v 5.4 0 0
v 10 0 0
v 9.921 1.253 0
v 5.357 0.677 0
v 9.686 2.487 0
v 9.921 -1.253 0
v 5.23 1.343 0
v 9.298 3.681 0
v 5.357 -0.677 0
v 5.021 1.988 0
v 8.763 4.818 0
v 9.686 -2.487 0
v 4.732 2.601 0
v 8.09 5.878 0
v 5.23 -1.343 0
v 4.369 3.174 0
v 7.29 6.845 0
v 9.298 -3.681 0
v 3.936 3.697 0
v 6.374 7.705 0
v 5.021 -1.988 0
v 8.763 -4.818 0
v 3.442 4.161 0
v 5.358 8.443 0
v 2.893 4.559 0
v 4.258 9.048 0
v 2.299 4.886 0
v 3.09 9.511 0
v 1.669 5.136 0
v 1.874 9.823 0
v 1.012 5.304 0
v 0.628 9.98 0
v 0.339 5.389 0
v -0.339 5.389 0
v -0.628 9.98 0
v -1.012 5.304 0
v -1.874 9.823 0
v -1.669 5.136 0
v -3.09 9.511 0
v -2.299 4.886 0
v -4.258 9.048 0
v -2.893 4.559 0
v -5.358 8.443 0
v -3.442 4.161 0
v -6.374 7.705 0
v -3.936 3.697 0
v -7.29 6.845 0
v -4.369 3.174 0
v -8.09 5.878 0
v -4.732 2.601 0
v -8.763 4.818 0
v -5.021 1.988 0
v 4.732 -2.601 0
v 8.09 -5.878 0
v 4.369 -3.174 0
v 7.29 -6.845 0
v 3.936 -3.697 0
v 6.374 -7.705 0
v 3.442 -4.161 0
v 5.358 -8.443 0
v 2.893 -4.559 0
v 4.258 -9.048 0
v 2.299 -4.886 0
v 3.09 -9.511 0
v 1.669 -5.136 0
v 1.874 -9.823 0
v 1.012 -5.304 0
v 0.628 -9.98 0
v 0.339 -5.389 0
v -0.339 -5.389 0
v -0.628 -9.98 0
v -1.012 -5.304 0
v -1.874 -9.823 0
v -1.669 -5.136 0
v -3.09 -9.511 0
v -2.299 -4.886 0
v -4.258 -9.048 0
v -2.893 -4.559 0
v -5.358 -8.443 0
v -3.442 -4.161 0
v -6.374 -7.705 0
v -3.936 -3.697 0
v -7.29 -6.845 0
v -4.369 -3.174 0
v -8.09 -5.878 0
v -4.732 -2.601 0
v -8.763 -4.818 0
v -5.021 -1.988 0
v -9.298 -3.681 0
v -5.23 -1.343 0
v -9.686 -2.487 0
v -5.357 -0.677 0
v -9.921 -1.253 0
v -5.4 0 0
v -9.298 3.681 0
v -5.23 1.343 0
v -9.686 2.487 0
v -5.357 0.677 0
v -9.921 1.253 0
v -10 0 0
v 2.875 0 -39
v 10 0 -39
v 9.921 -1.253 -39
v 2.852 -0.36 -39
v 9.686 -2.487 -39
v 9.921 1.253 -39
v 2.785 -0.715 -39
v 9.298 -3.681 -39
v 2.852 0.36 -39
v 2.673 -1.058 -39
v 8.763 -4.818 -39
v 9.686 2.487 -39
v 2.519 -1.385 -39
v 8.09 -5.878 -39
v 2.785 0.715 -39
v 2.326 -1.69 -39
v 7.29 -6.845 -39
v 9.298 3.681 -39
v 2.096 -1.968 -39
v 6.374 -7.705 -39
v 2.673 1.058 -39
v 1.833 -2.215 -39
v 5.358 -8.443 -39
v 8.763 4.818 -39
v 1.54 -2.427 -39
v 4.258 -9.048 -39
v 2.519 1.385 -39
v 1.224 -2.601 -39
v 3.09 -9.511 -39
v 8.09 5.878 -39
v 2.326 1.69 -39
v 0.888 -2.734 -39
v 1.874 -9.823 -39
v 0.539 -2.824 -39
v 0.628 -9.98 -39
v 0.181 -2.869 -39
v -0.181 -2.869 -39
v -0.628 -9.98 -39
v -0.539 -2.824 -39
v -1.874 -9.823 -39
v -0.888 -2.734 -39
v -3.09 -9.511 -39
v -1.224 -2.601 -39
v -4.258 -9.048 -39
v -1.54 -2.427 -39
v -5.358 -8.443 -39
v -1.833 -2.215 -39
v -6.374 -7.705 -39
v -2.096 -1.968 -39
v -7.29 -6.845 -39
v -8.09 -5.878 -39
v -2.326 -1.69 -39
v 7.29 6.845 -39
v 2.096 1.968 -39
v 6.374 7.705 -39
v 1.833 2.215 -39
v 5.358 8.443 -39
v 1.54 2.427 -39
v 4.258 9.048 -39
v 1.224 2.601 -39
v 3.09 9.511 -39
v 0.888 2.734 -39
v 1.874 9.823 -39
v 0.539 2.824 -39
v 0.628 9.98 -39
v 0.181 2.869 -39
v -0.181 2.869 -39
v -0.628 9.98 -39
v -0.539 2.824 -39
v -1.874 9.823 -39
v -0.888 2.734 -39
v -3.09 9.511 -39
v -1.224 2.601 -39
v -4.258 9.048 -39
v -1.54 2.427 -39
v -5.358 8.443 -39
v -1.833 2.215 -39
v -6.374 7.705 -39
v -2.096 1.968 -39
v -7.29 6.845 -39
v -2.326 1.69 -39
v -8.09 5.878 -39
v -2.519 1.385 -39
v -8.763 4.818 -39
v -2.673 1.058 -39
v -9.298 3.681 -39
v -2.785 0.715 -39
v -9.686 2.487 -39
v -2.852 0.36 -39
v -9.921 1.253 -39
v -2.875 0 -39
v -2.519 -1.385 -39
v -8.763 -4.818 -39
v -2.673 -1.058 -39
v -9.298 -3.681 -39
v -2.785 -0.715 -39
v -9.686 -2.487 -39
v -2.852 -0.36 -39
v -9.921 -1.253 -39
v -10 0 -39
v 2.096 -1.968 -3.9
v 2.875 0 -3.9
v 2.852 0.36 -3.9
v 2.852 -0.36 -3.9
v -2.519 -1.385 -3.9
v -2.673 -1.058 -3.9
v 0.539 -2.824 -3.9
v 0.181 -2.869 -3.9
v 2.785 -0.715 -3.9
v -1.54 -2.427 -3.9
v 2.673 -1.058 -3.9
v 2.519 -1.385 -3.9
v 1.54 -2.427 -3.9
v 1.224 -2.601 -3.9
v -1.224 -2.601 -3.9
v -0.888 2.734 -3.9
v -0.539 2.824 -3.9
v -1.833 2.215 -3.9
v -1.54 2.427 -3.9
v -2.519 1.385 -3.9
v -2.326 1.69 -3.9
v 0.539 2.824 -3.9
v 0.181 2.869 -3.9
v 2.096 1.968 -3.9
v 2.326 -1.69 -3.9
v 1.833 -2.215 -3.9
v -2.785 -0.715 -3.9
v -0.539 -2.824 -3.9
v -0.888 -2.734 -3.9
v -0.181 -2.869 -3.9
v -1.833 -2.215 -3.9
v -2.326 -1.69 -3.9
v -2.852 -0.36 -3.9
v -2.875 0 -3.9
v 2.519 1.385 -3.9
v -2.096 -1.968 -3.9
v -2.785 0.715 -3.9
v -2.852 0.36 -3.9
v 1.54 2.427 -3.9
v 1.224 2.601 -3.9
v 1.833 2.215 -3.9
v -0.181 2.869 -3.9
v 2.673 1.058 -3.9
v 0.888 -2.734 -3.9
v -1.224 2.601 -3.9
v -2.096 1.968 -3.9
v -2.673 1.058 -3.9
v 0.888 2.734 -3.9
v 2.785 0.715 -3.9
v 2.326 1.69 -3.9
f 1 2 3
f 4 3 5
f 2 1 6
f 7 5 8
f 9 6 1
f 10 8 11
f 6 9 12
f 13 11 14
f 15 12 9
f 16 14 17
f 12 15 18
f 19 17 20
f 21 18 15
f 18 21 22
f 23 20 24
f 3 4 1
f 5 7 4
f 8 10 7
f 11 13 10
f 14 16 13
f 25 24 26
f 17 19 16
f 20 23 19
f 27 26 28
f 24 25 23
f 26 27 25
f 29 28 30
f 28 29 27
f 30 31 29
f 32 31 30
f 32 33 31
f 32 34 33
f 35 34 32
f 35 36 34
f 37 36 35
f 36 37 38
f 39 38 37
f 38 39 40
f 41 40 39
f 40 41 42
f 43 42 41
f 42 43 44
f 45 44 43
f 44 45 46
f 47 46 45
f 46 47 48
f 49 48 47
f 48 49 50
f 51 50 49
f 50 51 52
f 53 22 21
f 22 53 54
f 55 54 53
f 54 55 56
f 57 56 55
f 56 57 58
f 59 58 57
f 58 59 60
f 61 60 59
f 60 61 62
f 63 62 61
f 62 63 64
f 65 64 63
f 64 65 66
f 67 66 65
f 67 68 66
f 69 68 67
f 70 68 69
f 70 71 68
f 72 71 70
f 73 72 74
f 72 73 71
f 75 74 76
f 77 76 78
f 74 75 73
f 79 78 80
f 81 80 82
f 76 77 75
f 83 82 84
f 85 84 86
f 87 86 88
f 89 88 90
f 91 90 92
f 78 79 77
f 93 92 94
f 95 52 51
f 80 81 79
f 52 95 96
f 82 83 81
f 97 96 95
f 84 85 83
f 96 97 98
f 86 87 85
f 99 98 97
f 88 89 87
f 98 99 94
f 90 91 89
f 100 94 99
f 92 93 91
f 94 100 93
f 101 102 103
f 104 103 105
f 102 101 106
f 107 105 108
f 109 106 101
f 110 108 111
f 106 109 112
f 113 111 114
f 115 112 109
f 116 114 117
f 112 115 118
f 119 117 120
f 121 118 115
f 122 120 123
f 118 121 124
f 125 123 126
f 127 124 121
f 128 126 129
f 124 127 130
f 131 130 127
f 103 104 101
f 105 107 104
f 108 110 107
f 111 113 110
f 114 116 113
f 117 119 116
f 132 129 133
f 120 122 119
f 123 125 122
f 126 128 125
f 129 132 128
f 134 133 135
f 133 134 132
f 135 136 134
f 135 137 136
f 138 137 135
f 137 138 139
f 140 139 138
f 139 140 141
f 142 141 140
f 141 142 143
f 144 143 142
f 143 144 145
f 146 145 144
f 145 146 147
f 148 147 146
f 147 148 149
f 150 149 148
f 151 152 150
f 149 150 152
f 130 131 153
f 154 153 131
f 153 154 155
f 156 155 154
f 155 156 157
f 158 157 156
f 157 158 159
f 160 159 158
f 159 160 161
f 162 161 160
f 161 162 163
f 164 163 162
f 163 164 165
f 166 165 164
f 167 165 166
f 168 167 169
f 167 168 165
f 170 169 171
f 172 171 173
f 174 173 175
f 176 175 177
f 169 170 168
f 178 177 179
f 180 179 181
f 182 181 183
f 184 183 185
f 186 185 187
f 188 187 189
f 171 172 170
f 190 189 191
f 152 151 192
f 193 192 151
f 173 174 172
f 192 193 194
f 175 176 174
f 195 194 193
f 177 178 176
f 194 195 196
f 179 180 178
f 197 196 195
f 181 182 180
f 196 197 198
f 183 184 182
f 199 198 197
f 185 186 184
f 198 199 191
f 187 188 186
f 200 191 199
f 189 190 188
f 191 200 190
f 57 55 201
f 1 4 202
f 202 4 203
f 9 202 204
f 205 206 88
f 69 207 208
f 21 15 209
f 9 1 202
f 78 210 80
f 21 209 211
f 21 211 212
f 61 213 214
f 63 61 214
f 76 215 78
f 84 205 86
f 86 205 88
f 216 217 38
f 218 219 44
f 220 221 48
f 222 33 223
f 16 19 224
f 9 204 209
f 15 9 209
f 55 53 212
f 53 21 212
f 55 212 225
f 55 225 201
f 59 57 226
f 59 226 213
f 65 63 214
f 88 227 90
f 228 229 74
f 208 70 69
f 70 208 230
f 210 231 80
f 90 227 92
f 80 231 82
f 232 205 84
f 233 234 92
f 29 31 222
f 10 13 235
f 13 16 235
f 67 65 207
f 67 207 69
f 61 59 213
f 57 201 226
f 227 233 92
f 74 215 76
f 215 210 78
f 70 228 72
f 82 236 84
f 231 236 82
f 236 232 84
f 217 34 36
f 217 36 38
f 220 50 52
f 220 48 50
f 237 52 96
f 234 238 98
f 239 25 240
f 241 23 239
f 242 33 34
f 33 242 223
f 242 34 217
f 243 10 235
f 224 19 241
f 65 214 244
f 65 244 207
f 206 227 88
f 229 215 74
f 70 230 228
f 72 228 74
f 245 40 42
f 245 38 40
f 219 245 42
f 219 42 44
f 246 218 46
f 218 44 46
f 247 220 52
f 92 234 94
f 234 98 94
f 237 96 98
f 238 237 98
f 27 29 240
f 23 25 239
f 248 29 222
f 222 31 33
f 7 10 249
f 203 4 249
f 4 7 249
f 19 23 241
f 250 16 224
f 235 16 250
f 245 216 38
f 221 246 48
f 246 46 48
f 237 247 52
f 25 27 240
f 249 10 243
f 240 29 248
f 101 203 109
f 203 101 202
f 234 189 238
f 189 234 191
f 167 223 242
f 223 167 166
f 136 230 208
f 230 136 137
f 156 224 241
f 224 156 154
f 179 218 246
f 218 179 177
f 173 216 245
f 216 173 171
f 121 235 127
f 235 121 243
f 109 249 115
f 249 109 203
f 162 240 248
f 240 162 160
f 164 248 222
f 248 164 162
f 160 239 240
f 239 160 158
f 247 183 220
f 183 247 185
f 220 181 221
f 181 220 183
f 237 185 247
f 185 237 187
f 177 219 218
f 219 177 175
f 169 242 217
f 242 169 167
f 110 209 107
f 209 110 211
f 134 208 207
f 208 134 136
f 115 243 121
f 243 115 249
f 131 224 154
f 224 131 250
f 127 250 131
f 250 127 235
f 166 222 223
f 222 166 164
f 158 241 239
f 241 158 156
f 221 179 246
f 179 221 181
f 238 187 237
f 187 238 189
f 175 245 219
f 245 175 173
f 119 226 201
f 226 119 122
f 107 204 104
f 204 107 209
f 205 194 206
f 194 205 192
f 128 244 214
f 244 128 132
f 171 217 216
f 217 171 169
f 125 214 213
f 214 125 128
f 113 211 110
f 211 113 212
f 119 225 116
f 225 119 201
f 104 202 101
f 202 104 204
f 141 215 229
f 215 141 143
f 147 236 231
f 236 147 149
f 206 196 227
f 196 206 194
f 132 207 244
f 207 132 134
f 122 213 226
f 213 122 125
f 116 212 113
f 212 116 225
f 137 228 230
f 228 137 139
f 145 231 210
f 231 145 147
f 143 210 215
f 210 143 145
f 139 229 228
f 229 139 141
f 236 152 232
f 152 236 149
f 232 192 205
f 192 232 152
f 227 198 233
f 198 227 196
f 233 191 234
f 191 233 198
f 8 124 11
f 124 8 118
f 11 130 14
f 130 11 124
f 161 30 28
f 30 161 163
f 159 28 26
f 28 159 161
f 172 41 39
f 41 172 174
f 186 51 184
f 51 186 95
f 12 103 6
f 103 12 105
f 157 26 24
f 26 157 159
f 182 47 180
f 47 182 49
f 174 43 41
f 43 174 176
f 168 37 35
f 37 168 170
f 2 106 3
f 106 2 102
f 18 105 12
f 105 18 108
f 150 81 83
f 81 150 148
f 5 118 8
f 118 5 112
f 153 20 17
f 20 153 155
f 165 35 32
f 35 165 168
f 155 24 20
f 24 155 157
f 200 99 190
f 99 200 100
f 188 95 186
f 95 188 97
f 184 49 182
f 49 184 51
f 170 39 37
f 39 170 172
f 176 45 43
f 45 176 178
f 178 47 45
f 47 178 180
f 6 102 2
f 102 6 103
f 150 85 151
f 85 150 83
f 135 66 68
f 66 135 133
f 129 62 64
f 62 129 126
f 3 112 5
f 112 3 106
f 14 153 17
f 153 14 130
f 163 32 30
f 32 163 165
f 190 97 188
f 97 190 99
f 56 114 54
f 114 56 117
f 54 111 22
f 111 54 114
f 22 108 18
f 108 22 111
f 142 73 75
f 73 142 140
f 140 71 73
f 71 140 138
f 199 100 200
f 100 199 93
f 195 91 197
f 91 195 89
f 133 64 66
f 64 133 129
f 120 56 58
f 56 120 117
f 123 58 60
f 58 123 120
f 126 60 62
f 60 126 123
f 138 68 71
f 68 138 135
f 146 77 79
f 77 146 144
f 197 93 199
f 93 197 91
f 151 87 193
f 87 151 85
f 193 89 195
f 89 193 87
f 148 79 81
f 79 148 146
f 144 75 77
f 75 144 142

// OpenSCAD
$fn = 50;


difference() {
	union() {
		translate(v = [0, 0, -39.0000000000]) {
			cylinder(h = 39, r = 10.0000000000);
		}
		cylinder(h = 0, r = 19.0000000000);
	}
	union() {
		translate(v = [0, 0, 0]) {
			rotate(a = [0, 0, 0]) {
				difference() {
					union() {
						#translate(v = [0, 0, -39.0000000000]) {
							cylinder(h = 39, r = 2.6000000000);
						}
						#translate(v = [0, 0, -3.9000000000]) {
							cylinder(h = 3.9000000000, r = 10.0000000000, r1 = 2.8750000000, r2 = 5.4000000000);
						}
						#translate(v = [0, 0, -39.0000000000]) {
							cylinder(h = 39, r = 2.8750000000);
						}
						#translate(v = [0, 0, -39.0000000000]) {
							cylinder(h = 39, r = 2.6000000000);
						}
					}
					union();
				}
			}
		}
	}
}
